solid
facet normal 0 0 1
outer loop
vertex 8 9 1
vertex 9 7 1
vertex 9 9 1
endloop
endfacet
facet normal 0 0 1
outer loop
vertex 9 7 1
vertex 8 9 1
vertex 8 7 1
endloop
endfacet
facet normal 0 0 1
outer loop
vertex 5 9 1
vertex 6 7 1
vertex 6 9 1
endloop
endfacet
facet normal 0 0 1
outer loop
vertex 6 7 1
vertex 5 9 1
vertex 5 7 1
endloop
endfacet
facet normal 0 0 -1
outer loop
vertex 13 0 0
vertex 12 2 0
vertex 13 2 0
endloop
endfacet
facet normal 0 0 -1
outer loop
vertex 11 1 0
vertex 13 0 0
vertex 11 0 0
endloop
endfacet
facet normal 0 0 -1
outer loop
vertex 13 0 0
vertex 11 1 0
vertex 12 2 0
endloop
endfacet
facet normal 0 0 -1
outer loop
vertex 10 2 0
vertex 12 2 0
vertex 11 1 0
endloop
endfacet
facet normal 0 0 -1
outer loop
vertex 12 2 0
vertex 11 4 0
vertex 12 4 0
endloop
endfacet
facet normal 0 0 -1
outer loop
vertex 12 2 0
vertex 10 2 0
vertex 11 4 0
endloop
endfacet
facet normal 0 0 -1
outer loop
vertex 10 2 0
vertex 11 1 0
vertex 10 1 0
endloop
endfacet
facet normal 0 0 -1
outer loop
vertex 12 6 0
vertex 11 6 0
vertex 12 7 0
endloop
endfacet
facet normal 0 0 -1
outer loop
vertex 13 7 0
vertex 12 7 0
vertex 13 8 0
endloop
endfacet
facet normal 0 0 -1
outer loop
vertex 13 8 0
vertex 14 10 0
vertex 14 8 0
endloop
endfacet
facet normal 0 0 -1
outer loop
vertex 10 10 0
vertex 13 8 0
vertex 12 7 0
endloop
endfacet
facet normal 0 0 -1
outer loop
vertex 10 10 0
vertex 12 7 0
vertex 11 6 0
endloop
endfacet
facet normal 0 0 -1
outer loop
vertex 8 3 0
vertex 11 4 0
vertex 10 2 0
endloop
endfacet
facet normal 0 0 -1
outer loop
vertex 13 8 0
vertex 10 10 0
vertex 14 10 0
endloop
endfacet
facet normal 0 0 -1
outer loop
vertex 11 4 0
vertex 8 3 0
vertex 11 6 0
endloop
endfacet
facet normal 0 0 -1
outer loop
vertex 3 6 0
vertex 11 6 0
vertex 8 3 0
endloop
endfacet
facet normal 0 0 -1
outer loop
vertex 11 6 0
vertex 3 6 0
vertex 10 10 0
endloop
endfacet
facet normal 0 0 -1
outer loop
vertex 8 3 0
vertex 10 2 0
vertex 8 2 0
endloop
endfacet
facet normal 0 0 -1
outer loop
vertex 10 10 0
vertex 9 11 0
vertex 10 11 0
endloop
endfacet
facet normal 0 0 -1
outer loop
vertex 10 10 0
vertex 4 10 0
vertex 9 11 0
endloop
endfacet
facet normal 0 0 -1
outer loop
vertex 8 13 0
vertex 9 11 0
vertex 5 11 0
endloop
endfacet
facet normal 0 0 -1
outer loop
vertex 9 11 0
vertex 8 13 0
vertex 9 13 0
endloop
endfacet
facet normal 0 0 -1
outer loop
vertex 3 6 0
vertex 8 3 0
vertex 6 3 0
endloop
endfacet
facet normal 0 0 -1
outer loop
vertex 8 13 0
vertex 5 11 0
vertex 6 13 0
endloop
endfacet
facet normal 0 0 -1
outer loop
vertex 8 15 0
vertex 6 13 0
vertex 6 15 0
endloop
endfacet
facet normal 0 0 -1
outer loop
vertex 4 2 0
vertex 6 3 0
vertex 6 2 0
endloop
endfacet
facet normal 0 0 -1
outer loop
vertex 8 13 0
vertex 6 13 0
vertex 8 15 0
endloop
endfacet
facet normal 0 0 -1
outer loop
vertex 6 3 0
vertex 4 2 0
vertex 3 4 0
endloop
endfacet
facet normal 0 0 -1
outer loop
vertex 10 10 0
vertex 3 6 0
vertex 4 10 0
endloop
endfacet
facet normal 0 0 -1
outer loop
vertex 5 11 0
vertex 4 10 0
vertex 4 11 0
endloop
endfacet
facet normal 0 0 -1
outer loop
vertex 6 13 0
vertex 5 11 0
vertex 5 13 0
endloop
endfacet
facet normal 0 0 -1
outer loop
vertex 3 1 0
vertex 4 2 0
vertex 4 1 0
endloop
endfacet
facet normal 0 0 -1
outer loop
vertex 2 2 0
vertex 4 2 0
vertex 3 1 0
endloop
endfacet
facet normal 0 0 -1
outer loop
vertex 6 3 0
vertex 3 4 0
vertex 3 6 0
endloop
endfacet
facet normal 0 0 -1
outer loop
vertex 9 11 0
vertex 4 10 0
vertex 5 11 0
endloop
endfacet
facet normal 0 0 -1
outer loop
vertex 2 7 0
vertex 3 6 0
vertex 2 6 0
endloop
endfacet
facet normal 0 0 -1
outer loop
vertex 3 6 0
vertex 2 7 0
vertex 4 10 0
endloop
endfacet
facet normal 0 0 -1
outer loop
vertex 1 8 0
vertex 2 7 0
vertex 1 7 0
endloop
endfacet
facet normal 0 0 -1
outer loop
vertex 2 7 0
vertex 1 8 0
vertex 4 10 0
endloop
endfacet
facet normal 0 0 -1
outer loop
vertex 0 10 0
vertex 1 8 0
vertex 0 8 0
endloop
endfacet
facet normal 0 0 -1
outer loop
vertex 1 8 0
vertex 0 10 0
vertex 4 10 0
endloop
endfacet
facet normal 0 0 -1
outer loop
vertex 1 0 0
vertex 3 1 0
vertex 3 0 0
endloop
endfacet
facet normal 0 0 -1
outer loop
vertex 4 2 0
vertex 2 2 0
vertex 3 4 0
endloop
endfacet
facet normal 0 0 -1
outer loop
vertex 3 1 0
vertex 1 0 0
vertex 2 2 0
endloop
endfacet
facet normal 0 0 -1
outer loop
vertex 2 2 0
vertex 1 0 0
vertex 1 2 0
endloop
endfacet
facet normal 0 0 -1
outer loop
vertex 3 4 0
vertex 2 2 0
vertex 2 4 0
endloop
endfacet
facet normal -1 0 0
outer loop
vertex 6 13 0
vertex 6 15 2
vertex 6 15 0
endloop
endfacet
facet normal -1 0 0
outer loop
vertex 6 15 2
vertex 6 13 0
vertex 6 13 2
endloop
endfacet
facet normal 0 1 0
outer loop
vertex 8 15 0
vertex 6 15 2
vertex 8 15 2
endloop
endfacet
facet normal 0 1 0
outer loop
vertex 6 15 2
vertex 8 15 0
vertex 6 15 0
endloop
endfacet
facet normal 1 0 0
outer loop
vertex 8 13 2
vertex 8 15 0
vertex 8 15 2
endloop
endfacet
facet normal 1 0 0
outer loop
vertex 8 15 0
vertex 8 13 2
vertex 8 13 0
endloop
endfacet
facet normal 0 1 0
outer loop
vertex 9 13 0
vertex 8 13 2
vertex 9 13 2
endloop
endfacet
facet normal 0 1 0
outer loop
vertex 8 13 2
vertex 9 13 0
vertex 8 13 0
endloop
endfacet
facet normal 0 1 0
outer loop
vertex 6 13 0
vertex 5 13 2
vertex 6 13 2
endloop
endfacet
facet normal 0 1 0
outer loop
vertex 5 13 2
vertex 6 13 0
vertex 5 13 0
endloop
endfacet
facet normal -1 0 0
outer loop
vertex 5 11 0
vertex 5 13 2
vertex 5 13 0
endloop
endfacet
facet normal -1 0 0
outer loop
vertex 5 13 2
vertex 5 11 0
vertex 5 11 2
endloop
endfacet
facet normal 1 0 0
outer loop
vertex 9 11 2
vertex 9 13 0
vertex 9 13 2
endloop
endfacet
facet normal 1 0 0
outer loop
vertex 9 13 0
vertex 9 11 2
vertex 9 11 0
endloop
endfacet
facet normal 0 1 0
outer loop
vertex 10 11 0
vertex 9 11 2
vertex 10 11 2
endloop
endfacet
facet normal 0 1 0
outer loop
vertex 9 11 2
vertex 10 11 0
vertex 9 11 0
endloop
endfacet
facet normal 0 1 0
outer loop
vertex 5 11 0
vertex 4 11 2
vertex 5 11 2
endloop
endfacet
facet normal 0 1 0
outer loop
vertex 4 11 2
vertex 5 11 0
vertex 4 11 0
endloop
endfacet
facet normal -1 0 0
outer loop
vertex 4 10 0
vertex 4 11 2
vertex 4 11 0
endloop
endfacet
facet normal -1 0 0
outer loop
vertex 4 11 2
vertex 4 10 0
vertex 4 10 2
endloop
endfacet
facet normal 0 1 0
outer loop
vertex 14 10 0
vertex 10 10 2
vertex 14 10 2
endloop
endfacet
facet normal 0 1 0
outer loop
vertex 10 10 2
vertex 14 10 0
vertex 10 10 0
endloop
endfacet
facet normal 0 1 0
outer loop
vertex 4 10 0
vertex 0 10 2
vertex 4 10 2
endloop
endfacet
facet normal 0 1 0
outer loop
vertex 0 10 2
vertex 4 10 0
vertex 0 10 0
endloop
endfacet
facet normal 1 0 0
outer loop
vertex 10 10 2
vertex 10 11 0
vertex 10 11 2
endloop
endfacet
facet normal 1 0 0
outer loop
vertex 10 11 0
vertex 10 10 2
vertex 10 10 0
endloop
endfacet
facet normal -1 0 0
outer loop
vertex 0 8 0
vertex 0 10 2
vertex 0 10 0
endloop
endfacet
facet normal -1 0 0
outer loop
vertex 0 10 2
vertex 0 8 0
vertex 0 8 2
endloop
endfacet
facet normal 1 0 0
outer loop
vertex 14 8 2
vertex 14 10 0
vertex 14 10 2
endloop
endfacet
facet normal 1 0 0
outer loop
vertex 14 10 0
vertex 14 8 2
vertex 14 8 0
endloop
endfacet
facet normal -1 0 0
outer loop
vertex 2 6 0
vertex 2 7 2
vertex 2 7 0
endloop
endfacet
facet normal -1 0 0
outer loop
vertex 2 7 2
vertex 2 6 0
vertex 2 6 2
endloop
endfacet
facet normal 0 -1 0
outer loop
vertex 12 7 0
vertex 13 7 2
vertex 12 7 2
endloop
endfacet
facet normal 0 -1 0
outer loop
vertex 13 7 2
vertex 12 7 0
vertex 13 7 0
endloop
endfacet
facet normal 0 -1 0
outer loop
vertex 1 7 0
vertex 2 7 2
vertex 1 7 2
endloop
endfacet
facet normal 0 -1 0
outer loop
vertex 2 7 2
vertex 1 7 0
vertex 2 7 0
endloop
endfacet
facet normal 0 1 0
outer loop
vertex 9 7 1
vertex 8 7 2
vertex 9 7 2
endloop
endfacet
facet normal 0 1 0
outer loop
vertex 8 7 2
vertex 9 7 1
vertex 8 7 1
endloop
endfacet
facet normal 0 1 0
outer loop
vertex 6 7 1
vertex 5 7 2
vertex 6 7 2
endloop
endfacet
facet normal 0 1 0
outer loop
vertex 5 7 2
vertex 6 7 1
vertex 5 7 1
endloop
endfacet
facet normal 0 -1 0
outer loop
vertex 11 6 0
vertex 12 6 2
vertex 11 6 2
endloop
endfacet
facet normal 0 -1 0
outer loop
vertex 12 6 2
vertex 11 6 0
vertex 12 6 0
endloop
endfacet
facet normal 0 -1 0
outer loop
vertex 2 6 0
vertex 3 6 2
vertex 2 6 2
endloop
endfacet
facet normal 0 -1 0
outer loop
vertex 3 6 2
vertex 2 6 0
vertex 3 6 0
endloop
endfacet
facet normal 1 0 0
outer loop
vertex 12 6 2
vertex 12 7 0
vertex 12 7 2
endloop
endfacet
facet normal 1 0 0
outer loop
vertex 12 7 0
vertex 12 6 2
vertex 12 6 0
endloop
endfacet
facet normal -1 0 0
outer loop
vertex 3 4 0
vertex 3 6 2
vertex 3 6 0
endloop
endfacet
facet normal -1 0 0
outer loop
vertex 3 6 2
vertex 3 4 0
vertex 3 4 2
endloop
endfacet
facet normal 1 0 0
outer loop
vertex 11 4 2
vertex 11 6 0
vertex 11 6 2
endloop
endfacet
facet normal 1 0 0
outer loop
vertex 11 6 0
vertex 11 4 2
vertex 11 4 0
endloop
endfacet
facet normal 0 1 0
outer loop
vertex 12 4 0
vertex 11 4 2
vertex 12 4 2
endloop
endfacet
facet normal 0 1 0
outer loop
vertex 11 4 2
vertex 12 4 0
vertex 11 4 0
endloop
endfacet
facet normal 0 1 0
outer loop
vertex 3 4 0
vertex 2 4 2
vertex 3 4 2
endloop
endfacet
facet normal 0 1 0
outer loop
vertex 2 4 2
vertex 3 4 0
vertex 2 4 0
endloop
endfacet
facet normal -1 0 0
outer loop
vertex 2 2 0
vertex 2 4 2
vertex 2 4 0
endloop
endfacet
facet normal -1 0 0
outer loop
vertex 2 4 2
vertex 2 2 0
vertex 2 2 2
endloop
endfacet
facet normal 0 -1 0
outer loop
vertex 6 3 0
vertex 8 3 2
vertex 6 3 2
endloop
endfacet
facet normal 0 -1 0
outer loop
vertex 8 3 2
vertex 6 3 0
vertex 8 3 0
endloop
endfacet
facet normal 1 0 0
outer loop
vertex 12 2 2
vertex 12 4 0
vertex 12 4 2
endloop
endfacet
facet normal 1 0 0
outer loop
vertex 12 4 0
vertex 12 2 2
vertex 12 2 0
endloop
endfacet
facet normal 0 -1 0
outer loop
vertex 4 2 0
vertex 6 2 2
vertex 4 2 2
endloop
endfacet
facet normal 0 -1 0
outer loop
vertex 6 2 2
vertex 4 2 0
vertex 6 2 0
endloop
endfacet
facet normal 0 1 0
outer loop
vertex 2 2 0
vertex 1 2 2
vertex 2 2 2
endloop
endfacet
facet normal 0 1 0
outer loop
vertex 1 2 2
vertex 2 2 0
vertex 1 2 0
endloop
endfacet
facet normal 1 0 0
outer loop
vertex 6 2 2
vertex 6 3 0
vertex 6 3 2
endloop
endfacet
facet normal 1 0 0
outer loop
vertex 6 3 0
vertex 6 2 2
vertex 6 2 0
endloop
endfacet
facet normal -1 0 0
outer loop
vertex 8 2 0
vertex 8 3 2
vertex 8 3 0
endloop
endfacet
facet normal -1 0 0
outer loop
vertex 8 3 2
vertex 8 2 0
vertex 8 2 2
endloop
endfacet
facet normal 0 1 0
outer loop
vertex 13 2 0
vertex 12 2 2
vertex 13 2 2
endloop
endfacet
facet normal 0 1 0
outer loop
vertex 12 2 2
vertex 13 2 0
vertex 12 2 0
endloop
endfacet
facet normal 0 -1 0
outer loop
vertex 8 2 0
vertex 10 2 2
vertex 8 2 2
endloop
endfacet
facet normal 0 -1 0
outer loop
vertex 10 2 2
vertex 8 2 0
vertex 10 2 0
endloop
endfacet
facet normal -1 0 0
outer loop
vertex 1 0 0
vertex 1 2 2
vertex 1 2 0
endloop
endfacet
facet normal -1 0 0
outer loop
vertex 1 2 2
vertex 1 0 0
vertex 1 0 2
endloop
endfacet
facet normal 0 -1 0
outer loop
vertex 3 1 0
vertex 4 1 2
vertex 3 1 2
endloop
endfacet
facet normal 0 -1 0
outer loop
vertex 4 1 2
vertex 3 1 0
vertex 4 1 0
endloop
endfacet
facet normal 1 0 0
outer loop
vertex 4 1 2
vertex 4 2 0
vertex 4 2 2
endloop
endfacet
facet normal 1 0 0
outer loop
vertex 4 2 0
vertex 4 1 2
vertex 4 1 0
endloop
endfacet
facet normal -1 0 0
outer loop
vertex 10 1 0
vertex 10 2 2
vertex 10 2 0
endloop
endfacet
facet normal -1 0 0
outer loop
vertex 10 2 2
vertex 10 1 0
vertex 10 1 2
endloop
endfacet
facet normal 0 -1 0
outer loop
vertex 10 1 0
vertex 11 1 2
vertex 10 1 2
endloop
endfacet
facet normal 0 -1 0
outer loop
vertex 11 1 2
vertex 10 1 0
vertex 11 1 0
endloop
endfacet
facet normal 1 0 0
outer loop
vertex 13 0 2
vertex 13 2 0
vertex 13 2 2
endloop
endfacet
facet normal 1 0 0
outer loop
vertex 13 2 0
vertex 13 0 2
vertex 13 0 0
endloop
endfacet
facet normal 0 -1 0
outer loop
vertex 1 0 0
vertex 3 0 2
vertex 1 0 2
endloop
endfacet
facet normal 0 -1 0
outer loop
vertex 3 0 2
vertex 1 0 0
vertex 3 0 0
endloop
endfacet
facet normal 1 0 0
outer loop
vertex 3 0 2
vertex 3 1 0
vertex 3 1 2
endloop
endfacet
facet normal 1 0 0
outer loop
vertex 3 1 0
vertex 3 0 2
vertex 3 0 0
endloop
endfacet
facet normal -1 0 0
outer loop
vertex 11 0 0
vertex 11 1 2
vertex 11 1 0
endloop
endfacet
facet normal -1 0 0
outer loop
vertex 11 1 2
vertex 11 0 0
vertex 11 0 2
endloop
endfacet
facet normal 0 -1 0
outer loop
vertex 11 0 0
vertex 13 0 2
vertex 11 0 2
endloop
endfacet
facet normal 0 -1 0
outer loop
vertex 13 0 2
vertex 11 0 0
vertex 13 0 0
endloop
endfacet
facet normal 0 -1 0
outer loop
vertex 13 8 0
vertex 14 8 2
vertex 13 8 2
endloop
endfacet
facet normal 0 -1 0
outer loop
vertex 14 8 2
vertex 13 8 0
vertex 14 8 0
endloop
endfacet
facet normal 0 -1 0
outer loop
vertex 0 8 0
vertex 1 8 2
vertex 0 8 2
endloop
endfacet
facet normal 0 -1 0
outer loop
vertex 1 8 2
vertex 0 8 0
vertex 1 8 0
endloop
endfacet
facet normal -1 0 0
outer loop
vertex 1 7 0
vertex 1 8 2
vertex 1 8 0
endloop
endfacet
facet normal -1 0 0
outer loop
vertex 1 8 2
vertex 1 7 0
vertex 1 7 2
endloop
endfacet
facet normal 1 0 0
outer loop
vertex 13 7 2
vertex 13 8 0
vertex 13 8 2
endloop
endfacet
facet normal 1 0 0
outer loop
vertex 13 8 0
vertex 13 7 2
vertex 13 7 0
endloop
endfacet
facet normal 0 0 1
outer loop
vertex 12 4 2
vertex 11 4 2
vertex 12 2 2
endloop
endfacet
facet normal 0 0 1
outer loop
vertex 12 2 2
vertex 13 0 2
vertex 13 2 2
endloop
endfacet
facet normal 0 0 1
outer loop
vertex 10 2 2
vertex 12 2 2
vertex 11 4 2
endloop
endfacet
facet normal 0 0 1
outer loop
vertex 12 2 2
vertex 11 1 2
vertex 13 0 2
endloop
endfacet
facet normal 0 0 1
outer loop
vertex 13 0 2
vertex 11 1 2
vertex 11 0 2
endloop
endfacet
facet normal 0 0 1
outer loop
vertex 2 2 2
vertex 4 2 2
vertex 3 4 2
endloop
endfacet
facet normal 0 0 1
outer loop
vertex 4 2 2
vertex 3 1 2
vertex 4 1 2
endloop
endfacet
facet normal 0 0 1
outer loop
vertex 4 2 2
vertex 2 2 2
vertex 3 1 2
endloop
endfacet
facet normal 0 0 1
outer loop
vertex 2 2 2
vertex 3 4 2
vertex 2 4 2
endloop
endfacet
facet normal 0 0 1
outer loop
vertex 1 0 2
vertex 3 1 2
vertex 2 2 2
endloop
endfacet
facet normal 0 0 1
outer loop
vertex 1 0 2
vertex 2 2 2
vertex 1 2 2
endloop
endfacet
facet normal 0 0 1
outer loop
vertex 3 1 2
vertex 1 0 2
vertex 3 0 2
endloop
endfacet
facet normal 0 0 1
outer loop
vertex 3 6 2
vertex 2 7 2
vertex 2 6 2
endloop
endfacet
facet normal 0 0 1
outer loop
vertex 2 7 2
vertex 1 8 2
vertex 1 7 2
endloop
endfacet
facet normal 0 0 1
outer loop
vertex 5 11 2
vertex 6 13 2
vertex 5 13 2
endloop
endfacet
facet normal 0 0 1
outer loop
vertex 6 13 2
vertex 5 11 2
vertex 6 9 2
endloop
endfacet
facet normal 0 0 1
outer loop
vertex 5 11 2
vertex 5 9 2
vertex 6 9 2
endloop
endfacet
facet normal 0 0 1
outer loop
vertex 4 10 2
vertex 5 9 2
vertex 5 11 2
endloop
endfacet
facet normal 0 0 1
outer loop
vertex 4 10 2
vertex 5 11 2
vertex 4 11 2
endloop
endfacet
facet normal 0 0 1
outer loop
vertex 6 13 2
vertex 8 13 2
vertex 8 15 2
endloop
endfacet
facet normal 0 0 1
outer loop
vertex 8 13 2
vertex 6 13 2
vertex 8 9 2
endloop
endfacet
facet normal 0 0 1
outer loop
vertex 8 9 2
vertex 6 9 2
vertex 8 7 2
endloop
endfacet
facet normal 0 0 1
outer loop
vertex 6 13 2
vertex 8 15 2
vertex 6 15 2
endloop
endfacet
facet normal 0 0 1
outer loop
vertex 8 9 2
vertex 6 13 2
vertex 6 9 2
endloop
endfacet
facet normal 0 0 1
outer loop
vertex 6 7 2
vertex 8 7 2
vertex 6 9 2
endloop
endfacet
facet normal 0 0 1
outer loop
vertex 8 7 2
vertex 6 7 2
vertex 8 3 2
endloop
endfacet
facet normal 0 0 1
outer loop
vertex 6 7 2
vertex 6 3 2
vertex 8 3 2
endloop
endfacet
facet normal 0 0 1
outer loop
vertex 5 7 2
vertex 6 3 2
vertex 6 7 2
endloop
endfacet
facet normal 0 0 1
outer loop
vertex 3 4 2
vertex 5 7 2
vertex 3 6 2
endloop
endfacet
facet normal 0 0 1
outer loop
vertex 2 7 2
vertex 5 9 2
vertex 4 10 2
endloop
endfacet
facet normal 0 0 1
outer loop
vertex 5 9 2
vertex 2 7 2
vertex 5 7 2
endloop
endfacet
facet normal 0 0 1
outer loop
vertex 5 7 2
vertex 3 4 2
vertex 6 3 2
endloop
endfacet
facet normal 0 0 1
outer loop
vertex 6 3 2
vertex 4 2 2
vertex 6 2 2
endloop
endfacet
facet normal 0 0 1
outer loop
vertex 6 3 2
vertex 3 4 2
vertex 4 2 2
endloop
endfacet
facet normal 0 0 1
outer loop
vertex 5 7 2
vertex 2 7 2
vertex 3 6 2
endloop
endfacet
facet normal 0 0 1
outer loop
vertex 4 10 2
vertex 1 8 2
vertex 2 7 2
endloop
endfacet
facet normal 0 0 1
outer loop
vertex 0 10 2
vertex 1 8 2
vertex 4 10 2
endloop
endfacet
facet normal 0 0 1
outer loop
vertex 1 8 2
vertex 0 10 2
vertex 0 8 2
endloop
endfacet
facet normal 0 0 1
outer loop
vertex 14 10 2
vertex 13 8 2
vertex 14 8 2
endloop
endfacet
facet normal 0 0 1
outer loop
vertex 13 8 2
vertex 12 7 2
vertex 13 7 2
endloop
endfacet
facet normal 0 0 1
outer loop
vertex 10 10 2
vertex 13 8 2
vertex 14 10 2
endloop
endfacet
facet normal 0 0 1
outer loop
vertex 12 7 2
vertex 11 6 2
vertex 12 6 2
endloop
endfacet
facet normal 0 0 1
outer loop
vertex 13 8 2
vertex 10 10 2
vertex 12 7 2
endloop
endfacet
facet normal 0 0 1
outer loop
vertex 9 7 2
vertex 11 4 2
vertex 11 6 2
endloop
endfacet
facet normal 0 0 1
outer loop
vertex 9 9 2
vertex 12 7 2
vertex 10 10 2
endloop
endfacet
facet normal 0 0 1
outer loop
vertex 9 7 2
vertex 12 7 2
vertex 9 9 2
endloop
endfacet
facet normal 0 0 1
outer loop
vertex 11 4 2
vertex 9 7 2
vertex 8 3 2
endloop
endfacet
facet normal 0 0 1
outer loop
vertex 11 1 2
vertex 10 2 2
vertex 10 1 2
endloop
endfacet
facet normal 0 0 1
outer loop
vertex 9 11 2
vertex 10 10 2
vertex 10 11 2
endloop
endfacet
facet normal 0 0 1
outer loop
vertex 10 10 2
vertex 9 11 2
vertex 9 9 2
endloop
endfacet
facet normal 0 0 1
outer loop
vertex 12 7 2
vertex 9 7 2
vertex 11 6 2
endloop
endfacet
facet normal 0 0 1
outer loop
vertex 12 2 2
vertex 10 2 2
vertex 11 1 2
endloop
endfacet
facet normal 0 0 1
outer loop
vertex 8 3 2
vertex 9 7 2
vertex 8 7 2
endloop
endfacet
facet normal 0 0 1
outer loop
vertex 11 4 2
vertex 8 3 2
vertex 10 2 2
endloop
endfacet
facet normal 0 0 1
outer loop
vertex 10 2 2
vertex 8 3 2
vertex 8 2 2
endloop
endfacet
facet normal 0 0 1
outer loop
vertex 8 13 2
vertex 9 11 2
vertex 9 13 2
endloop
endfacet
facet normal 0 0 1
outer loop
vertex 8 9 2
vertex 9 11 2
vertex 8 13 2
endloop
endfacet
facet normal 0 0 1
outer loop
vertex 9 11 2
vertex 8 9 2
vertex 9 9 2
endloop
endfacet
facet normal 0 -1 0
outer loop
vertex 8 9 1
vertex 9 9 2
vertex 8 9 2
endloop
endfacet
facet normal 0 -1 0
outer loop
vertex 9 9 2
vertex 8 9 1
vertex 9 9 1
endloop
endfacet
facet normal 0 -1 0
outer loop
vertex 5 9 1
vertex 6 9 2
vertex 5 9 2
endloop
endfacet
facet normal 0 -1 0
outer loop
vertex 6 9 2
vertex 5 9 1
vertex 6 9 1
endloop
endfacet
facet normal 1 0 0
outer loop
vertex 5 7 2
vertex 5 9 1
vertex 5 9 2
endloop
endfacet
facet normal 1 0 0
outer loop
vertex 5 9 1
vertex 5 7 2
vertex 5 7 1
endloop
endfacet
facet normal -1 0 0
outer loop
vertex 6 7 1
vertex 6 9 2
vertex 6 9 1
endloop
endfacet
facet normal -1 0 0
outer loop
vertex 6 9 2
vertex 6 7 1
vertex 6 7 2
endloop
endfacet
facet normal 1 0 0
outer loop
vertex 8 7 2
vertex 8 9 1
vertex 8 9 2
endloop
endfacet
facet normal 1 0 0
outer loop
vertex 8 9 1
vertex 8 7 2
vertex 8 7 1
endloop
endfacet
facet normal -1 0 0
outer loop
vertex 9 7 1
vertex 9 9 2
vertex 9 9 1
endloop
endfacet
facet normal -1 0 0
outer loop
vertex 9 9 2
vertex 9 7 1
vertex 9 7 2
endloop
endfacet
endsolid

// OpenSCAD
/*
 * 3D Pixel Art - Star 3
 * Copyright (c) 2019 Anar Software LLC. < http://anars.com >
 *
 * This program is free software: you can redistribute it and/or modify it under
 * the terms of the GNU General Public License as published by the Free Software
 * Foundation, either version 3 of the License, or (at your option) any later
 * version.
 *
 * This program is distributed in the hope that it will be useful, but WITHOUT
 * ANY WARRANTY; without even the implied warranty of MERCHANTABILITY or FITNESS
 * FOR A PARTICULAR PURPOSE. See the GNU General Public License for more details.
 *
 * You should have received a copy of the GNU General Public License along with
 * this program. If not, see < http://www.gnu.org/licenses/ >
 *
 */

/* [Global] */

/* [Pixel Settings] */

// Pixel Length (X)
pixel_length = 1;

// Pixel Width (Y)
pixel_width = 1;

// Pixel Height (Z)
pixel_height = 1;

/* [Hidden] */

data=[[
     "      XX",
     "      XX",
     "     XXXX",
     "     XXXX",
     "    XXXXXX",
     "XXXXXXXXXXXXXX",
     "XXXXXXXXXXXXXX",
     " XXXXXXXXXXXX",
     "  XXXXXXXXXX",
     "   XXXXXXXX",
     "   XXXXXXXX",
     "  XXXXXXXXXX",
     "  XXXX  XXXX",
     " XXX      XXX",
     " XX        XX"
     ],[
     "      XX",
     "      XX",
     "     XXXX",
     "     XXXX",
     "    XXXXXX",
     "XXXXXXXXXXXXXX",
     "XXXXX XX XXXXX",
     " XXXX XX XXXX",
     "  XXXXXXXXXX",
     "   XXXXXXXX",
     "   XXXXXXXX",
     "  XXXXXXXXXX",
     "  XXXX  XXXX",
     " XXX      XXX",
     " XX        XX"]];

for (z = [0 : len(data) - 1])
    for (y = [0 : len(data[z]) - 1])
        if (len(data[z][y]) > 0)
            for (x = [0 : len(data[z][y]) - 1])
                if (data[z][y][x] == "X")
                    translate([x * pixel_length, (len(data[z]) - 1 - y) * pixel_width, z * pixel_height])
                        cube([pixel_length, pixel_width, pixel_height]);
